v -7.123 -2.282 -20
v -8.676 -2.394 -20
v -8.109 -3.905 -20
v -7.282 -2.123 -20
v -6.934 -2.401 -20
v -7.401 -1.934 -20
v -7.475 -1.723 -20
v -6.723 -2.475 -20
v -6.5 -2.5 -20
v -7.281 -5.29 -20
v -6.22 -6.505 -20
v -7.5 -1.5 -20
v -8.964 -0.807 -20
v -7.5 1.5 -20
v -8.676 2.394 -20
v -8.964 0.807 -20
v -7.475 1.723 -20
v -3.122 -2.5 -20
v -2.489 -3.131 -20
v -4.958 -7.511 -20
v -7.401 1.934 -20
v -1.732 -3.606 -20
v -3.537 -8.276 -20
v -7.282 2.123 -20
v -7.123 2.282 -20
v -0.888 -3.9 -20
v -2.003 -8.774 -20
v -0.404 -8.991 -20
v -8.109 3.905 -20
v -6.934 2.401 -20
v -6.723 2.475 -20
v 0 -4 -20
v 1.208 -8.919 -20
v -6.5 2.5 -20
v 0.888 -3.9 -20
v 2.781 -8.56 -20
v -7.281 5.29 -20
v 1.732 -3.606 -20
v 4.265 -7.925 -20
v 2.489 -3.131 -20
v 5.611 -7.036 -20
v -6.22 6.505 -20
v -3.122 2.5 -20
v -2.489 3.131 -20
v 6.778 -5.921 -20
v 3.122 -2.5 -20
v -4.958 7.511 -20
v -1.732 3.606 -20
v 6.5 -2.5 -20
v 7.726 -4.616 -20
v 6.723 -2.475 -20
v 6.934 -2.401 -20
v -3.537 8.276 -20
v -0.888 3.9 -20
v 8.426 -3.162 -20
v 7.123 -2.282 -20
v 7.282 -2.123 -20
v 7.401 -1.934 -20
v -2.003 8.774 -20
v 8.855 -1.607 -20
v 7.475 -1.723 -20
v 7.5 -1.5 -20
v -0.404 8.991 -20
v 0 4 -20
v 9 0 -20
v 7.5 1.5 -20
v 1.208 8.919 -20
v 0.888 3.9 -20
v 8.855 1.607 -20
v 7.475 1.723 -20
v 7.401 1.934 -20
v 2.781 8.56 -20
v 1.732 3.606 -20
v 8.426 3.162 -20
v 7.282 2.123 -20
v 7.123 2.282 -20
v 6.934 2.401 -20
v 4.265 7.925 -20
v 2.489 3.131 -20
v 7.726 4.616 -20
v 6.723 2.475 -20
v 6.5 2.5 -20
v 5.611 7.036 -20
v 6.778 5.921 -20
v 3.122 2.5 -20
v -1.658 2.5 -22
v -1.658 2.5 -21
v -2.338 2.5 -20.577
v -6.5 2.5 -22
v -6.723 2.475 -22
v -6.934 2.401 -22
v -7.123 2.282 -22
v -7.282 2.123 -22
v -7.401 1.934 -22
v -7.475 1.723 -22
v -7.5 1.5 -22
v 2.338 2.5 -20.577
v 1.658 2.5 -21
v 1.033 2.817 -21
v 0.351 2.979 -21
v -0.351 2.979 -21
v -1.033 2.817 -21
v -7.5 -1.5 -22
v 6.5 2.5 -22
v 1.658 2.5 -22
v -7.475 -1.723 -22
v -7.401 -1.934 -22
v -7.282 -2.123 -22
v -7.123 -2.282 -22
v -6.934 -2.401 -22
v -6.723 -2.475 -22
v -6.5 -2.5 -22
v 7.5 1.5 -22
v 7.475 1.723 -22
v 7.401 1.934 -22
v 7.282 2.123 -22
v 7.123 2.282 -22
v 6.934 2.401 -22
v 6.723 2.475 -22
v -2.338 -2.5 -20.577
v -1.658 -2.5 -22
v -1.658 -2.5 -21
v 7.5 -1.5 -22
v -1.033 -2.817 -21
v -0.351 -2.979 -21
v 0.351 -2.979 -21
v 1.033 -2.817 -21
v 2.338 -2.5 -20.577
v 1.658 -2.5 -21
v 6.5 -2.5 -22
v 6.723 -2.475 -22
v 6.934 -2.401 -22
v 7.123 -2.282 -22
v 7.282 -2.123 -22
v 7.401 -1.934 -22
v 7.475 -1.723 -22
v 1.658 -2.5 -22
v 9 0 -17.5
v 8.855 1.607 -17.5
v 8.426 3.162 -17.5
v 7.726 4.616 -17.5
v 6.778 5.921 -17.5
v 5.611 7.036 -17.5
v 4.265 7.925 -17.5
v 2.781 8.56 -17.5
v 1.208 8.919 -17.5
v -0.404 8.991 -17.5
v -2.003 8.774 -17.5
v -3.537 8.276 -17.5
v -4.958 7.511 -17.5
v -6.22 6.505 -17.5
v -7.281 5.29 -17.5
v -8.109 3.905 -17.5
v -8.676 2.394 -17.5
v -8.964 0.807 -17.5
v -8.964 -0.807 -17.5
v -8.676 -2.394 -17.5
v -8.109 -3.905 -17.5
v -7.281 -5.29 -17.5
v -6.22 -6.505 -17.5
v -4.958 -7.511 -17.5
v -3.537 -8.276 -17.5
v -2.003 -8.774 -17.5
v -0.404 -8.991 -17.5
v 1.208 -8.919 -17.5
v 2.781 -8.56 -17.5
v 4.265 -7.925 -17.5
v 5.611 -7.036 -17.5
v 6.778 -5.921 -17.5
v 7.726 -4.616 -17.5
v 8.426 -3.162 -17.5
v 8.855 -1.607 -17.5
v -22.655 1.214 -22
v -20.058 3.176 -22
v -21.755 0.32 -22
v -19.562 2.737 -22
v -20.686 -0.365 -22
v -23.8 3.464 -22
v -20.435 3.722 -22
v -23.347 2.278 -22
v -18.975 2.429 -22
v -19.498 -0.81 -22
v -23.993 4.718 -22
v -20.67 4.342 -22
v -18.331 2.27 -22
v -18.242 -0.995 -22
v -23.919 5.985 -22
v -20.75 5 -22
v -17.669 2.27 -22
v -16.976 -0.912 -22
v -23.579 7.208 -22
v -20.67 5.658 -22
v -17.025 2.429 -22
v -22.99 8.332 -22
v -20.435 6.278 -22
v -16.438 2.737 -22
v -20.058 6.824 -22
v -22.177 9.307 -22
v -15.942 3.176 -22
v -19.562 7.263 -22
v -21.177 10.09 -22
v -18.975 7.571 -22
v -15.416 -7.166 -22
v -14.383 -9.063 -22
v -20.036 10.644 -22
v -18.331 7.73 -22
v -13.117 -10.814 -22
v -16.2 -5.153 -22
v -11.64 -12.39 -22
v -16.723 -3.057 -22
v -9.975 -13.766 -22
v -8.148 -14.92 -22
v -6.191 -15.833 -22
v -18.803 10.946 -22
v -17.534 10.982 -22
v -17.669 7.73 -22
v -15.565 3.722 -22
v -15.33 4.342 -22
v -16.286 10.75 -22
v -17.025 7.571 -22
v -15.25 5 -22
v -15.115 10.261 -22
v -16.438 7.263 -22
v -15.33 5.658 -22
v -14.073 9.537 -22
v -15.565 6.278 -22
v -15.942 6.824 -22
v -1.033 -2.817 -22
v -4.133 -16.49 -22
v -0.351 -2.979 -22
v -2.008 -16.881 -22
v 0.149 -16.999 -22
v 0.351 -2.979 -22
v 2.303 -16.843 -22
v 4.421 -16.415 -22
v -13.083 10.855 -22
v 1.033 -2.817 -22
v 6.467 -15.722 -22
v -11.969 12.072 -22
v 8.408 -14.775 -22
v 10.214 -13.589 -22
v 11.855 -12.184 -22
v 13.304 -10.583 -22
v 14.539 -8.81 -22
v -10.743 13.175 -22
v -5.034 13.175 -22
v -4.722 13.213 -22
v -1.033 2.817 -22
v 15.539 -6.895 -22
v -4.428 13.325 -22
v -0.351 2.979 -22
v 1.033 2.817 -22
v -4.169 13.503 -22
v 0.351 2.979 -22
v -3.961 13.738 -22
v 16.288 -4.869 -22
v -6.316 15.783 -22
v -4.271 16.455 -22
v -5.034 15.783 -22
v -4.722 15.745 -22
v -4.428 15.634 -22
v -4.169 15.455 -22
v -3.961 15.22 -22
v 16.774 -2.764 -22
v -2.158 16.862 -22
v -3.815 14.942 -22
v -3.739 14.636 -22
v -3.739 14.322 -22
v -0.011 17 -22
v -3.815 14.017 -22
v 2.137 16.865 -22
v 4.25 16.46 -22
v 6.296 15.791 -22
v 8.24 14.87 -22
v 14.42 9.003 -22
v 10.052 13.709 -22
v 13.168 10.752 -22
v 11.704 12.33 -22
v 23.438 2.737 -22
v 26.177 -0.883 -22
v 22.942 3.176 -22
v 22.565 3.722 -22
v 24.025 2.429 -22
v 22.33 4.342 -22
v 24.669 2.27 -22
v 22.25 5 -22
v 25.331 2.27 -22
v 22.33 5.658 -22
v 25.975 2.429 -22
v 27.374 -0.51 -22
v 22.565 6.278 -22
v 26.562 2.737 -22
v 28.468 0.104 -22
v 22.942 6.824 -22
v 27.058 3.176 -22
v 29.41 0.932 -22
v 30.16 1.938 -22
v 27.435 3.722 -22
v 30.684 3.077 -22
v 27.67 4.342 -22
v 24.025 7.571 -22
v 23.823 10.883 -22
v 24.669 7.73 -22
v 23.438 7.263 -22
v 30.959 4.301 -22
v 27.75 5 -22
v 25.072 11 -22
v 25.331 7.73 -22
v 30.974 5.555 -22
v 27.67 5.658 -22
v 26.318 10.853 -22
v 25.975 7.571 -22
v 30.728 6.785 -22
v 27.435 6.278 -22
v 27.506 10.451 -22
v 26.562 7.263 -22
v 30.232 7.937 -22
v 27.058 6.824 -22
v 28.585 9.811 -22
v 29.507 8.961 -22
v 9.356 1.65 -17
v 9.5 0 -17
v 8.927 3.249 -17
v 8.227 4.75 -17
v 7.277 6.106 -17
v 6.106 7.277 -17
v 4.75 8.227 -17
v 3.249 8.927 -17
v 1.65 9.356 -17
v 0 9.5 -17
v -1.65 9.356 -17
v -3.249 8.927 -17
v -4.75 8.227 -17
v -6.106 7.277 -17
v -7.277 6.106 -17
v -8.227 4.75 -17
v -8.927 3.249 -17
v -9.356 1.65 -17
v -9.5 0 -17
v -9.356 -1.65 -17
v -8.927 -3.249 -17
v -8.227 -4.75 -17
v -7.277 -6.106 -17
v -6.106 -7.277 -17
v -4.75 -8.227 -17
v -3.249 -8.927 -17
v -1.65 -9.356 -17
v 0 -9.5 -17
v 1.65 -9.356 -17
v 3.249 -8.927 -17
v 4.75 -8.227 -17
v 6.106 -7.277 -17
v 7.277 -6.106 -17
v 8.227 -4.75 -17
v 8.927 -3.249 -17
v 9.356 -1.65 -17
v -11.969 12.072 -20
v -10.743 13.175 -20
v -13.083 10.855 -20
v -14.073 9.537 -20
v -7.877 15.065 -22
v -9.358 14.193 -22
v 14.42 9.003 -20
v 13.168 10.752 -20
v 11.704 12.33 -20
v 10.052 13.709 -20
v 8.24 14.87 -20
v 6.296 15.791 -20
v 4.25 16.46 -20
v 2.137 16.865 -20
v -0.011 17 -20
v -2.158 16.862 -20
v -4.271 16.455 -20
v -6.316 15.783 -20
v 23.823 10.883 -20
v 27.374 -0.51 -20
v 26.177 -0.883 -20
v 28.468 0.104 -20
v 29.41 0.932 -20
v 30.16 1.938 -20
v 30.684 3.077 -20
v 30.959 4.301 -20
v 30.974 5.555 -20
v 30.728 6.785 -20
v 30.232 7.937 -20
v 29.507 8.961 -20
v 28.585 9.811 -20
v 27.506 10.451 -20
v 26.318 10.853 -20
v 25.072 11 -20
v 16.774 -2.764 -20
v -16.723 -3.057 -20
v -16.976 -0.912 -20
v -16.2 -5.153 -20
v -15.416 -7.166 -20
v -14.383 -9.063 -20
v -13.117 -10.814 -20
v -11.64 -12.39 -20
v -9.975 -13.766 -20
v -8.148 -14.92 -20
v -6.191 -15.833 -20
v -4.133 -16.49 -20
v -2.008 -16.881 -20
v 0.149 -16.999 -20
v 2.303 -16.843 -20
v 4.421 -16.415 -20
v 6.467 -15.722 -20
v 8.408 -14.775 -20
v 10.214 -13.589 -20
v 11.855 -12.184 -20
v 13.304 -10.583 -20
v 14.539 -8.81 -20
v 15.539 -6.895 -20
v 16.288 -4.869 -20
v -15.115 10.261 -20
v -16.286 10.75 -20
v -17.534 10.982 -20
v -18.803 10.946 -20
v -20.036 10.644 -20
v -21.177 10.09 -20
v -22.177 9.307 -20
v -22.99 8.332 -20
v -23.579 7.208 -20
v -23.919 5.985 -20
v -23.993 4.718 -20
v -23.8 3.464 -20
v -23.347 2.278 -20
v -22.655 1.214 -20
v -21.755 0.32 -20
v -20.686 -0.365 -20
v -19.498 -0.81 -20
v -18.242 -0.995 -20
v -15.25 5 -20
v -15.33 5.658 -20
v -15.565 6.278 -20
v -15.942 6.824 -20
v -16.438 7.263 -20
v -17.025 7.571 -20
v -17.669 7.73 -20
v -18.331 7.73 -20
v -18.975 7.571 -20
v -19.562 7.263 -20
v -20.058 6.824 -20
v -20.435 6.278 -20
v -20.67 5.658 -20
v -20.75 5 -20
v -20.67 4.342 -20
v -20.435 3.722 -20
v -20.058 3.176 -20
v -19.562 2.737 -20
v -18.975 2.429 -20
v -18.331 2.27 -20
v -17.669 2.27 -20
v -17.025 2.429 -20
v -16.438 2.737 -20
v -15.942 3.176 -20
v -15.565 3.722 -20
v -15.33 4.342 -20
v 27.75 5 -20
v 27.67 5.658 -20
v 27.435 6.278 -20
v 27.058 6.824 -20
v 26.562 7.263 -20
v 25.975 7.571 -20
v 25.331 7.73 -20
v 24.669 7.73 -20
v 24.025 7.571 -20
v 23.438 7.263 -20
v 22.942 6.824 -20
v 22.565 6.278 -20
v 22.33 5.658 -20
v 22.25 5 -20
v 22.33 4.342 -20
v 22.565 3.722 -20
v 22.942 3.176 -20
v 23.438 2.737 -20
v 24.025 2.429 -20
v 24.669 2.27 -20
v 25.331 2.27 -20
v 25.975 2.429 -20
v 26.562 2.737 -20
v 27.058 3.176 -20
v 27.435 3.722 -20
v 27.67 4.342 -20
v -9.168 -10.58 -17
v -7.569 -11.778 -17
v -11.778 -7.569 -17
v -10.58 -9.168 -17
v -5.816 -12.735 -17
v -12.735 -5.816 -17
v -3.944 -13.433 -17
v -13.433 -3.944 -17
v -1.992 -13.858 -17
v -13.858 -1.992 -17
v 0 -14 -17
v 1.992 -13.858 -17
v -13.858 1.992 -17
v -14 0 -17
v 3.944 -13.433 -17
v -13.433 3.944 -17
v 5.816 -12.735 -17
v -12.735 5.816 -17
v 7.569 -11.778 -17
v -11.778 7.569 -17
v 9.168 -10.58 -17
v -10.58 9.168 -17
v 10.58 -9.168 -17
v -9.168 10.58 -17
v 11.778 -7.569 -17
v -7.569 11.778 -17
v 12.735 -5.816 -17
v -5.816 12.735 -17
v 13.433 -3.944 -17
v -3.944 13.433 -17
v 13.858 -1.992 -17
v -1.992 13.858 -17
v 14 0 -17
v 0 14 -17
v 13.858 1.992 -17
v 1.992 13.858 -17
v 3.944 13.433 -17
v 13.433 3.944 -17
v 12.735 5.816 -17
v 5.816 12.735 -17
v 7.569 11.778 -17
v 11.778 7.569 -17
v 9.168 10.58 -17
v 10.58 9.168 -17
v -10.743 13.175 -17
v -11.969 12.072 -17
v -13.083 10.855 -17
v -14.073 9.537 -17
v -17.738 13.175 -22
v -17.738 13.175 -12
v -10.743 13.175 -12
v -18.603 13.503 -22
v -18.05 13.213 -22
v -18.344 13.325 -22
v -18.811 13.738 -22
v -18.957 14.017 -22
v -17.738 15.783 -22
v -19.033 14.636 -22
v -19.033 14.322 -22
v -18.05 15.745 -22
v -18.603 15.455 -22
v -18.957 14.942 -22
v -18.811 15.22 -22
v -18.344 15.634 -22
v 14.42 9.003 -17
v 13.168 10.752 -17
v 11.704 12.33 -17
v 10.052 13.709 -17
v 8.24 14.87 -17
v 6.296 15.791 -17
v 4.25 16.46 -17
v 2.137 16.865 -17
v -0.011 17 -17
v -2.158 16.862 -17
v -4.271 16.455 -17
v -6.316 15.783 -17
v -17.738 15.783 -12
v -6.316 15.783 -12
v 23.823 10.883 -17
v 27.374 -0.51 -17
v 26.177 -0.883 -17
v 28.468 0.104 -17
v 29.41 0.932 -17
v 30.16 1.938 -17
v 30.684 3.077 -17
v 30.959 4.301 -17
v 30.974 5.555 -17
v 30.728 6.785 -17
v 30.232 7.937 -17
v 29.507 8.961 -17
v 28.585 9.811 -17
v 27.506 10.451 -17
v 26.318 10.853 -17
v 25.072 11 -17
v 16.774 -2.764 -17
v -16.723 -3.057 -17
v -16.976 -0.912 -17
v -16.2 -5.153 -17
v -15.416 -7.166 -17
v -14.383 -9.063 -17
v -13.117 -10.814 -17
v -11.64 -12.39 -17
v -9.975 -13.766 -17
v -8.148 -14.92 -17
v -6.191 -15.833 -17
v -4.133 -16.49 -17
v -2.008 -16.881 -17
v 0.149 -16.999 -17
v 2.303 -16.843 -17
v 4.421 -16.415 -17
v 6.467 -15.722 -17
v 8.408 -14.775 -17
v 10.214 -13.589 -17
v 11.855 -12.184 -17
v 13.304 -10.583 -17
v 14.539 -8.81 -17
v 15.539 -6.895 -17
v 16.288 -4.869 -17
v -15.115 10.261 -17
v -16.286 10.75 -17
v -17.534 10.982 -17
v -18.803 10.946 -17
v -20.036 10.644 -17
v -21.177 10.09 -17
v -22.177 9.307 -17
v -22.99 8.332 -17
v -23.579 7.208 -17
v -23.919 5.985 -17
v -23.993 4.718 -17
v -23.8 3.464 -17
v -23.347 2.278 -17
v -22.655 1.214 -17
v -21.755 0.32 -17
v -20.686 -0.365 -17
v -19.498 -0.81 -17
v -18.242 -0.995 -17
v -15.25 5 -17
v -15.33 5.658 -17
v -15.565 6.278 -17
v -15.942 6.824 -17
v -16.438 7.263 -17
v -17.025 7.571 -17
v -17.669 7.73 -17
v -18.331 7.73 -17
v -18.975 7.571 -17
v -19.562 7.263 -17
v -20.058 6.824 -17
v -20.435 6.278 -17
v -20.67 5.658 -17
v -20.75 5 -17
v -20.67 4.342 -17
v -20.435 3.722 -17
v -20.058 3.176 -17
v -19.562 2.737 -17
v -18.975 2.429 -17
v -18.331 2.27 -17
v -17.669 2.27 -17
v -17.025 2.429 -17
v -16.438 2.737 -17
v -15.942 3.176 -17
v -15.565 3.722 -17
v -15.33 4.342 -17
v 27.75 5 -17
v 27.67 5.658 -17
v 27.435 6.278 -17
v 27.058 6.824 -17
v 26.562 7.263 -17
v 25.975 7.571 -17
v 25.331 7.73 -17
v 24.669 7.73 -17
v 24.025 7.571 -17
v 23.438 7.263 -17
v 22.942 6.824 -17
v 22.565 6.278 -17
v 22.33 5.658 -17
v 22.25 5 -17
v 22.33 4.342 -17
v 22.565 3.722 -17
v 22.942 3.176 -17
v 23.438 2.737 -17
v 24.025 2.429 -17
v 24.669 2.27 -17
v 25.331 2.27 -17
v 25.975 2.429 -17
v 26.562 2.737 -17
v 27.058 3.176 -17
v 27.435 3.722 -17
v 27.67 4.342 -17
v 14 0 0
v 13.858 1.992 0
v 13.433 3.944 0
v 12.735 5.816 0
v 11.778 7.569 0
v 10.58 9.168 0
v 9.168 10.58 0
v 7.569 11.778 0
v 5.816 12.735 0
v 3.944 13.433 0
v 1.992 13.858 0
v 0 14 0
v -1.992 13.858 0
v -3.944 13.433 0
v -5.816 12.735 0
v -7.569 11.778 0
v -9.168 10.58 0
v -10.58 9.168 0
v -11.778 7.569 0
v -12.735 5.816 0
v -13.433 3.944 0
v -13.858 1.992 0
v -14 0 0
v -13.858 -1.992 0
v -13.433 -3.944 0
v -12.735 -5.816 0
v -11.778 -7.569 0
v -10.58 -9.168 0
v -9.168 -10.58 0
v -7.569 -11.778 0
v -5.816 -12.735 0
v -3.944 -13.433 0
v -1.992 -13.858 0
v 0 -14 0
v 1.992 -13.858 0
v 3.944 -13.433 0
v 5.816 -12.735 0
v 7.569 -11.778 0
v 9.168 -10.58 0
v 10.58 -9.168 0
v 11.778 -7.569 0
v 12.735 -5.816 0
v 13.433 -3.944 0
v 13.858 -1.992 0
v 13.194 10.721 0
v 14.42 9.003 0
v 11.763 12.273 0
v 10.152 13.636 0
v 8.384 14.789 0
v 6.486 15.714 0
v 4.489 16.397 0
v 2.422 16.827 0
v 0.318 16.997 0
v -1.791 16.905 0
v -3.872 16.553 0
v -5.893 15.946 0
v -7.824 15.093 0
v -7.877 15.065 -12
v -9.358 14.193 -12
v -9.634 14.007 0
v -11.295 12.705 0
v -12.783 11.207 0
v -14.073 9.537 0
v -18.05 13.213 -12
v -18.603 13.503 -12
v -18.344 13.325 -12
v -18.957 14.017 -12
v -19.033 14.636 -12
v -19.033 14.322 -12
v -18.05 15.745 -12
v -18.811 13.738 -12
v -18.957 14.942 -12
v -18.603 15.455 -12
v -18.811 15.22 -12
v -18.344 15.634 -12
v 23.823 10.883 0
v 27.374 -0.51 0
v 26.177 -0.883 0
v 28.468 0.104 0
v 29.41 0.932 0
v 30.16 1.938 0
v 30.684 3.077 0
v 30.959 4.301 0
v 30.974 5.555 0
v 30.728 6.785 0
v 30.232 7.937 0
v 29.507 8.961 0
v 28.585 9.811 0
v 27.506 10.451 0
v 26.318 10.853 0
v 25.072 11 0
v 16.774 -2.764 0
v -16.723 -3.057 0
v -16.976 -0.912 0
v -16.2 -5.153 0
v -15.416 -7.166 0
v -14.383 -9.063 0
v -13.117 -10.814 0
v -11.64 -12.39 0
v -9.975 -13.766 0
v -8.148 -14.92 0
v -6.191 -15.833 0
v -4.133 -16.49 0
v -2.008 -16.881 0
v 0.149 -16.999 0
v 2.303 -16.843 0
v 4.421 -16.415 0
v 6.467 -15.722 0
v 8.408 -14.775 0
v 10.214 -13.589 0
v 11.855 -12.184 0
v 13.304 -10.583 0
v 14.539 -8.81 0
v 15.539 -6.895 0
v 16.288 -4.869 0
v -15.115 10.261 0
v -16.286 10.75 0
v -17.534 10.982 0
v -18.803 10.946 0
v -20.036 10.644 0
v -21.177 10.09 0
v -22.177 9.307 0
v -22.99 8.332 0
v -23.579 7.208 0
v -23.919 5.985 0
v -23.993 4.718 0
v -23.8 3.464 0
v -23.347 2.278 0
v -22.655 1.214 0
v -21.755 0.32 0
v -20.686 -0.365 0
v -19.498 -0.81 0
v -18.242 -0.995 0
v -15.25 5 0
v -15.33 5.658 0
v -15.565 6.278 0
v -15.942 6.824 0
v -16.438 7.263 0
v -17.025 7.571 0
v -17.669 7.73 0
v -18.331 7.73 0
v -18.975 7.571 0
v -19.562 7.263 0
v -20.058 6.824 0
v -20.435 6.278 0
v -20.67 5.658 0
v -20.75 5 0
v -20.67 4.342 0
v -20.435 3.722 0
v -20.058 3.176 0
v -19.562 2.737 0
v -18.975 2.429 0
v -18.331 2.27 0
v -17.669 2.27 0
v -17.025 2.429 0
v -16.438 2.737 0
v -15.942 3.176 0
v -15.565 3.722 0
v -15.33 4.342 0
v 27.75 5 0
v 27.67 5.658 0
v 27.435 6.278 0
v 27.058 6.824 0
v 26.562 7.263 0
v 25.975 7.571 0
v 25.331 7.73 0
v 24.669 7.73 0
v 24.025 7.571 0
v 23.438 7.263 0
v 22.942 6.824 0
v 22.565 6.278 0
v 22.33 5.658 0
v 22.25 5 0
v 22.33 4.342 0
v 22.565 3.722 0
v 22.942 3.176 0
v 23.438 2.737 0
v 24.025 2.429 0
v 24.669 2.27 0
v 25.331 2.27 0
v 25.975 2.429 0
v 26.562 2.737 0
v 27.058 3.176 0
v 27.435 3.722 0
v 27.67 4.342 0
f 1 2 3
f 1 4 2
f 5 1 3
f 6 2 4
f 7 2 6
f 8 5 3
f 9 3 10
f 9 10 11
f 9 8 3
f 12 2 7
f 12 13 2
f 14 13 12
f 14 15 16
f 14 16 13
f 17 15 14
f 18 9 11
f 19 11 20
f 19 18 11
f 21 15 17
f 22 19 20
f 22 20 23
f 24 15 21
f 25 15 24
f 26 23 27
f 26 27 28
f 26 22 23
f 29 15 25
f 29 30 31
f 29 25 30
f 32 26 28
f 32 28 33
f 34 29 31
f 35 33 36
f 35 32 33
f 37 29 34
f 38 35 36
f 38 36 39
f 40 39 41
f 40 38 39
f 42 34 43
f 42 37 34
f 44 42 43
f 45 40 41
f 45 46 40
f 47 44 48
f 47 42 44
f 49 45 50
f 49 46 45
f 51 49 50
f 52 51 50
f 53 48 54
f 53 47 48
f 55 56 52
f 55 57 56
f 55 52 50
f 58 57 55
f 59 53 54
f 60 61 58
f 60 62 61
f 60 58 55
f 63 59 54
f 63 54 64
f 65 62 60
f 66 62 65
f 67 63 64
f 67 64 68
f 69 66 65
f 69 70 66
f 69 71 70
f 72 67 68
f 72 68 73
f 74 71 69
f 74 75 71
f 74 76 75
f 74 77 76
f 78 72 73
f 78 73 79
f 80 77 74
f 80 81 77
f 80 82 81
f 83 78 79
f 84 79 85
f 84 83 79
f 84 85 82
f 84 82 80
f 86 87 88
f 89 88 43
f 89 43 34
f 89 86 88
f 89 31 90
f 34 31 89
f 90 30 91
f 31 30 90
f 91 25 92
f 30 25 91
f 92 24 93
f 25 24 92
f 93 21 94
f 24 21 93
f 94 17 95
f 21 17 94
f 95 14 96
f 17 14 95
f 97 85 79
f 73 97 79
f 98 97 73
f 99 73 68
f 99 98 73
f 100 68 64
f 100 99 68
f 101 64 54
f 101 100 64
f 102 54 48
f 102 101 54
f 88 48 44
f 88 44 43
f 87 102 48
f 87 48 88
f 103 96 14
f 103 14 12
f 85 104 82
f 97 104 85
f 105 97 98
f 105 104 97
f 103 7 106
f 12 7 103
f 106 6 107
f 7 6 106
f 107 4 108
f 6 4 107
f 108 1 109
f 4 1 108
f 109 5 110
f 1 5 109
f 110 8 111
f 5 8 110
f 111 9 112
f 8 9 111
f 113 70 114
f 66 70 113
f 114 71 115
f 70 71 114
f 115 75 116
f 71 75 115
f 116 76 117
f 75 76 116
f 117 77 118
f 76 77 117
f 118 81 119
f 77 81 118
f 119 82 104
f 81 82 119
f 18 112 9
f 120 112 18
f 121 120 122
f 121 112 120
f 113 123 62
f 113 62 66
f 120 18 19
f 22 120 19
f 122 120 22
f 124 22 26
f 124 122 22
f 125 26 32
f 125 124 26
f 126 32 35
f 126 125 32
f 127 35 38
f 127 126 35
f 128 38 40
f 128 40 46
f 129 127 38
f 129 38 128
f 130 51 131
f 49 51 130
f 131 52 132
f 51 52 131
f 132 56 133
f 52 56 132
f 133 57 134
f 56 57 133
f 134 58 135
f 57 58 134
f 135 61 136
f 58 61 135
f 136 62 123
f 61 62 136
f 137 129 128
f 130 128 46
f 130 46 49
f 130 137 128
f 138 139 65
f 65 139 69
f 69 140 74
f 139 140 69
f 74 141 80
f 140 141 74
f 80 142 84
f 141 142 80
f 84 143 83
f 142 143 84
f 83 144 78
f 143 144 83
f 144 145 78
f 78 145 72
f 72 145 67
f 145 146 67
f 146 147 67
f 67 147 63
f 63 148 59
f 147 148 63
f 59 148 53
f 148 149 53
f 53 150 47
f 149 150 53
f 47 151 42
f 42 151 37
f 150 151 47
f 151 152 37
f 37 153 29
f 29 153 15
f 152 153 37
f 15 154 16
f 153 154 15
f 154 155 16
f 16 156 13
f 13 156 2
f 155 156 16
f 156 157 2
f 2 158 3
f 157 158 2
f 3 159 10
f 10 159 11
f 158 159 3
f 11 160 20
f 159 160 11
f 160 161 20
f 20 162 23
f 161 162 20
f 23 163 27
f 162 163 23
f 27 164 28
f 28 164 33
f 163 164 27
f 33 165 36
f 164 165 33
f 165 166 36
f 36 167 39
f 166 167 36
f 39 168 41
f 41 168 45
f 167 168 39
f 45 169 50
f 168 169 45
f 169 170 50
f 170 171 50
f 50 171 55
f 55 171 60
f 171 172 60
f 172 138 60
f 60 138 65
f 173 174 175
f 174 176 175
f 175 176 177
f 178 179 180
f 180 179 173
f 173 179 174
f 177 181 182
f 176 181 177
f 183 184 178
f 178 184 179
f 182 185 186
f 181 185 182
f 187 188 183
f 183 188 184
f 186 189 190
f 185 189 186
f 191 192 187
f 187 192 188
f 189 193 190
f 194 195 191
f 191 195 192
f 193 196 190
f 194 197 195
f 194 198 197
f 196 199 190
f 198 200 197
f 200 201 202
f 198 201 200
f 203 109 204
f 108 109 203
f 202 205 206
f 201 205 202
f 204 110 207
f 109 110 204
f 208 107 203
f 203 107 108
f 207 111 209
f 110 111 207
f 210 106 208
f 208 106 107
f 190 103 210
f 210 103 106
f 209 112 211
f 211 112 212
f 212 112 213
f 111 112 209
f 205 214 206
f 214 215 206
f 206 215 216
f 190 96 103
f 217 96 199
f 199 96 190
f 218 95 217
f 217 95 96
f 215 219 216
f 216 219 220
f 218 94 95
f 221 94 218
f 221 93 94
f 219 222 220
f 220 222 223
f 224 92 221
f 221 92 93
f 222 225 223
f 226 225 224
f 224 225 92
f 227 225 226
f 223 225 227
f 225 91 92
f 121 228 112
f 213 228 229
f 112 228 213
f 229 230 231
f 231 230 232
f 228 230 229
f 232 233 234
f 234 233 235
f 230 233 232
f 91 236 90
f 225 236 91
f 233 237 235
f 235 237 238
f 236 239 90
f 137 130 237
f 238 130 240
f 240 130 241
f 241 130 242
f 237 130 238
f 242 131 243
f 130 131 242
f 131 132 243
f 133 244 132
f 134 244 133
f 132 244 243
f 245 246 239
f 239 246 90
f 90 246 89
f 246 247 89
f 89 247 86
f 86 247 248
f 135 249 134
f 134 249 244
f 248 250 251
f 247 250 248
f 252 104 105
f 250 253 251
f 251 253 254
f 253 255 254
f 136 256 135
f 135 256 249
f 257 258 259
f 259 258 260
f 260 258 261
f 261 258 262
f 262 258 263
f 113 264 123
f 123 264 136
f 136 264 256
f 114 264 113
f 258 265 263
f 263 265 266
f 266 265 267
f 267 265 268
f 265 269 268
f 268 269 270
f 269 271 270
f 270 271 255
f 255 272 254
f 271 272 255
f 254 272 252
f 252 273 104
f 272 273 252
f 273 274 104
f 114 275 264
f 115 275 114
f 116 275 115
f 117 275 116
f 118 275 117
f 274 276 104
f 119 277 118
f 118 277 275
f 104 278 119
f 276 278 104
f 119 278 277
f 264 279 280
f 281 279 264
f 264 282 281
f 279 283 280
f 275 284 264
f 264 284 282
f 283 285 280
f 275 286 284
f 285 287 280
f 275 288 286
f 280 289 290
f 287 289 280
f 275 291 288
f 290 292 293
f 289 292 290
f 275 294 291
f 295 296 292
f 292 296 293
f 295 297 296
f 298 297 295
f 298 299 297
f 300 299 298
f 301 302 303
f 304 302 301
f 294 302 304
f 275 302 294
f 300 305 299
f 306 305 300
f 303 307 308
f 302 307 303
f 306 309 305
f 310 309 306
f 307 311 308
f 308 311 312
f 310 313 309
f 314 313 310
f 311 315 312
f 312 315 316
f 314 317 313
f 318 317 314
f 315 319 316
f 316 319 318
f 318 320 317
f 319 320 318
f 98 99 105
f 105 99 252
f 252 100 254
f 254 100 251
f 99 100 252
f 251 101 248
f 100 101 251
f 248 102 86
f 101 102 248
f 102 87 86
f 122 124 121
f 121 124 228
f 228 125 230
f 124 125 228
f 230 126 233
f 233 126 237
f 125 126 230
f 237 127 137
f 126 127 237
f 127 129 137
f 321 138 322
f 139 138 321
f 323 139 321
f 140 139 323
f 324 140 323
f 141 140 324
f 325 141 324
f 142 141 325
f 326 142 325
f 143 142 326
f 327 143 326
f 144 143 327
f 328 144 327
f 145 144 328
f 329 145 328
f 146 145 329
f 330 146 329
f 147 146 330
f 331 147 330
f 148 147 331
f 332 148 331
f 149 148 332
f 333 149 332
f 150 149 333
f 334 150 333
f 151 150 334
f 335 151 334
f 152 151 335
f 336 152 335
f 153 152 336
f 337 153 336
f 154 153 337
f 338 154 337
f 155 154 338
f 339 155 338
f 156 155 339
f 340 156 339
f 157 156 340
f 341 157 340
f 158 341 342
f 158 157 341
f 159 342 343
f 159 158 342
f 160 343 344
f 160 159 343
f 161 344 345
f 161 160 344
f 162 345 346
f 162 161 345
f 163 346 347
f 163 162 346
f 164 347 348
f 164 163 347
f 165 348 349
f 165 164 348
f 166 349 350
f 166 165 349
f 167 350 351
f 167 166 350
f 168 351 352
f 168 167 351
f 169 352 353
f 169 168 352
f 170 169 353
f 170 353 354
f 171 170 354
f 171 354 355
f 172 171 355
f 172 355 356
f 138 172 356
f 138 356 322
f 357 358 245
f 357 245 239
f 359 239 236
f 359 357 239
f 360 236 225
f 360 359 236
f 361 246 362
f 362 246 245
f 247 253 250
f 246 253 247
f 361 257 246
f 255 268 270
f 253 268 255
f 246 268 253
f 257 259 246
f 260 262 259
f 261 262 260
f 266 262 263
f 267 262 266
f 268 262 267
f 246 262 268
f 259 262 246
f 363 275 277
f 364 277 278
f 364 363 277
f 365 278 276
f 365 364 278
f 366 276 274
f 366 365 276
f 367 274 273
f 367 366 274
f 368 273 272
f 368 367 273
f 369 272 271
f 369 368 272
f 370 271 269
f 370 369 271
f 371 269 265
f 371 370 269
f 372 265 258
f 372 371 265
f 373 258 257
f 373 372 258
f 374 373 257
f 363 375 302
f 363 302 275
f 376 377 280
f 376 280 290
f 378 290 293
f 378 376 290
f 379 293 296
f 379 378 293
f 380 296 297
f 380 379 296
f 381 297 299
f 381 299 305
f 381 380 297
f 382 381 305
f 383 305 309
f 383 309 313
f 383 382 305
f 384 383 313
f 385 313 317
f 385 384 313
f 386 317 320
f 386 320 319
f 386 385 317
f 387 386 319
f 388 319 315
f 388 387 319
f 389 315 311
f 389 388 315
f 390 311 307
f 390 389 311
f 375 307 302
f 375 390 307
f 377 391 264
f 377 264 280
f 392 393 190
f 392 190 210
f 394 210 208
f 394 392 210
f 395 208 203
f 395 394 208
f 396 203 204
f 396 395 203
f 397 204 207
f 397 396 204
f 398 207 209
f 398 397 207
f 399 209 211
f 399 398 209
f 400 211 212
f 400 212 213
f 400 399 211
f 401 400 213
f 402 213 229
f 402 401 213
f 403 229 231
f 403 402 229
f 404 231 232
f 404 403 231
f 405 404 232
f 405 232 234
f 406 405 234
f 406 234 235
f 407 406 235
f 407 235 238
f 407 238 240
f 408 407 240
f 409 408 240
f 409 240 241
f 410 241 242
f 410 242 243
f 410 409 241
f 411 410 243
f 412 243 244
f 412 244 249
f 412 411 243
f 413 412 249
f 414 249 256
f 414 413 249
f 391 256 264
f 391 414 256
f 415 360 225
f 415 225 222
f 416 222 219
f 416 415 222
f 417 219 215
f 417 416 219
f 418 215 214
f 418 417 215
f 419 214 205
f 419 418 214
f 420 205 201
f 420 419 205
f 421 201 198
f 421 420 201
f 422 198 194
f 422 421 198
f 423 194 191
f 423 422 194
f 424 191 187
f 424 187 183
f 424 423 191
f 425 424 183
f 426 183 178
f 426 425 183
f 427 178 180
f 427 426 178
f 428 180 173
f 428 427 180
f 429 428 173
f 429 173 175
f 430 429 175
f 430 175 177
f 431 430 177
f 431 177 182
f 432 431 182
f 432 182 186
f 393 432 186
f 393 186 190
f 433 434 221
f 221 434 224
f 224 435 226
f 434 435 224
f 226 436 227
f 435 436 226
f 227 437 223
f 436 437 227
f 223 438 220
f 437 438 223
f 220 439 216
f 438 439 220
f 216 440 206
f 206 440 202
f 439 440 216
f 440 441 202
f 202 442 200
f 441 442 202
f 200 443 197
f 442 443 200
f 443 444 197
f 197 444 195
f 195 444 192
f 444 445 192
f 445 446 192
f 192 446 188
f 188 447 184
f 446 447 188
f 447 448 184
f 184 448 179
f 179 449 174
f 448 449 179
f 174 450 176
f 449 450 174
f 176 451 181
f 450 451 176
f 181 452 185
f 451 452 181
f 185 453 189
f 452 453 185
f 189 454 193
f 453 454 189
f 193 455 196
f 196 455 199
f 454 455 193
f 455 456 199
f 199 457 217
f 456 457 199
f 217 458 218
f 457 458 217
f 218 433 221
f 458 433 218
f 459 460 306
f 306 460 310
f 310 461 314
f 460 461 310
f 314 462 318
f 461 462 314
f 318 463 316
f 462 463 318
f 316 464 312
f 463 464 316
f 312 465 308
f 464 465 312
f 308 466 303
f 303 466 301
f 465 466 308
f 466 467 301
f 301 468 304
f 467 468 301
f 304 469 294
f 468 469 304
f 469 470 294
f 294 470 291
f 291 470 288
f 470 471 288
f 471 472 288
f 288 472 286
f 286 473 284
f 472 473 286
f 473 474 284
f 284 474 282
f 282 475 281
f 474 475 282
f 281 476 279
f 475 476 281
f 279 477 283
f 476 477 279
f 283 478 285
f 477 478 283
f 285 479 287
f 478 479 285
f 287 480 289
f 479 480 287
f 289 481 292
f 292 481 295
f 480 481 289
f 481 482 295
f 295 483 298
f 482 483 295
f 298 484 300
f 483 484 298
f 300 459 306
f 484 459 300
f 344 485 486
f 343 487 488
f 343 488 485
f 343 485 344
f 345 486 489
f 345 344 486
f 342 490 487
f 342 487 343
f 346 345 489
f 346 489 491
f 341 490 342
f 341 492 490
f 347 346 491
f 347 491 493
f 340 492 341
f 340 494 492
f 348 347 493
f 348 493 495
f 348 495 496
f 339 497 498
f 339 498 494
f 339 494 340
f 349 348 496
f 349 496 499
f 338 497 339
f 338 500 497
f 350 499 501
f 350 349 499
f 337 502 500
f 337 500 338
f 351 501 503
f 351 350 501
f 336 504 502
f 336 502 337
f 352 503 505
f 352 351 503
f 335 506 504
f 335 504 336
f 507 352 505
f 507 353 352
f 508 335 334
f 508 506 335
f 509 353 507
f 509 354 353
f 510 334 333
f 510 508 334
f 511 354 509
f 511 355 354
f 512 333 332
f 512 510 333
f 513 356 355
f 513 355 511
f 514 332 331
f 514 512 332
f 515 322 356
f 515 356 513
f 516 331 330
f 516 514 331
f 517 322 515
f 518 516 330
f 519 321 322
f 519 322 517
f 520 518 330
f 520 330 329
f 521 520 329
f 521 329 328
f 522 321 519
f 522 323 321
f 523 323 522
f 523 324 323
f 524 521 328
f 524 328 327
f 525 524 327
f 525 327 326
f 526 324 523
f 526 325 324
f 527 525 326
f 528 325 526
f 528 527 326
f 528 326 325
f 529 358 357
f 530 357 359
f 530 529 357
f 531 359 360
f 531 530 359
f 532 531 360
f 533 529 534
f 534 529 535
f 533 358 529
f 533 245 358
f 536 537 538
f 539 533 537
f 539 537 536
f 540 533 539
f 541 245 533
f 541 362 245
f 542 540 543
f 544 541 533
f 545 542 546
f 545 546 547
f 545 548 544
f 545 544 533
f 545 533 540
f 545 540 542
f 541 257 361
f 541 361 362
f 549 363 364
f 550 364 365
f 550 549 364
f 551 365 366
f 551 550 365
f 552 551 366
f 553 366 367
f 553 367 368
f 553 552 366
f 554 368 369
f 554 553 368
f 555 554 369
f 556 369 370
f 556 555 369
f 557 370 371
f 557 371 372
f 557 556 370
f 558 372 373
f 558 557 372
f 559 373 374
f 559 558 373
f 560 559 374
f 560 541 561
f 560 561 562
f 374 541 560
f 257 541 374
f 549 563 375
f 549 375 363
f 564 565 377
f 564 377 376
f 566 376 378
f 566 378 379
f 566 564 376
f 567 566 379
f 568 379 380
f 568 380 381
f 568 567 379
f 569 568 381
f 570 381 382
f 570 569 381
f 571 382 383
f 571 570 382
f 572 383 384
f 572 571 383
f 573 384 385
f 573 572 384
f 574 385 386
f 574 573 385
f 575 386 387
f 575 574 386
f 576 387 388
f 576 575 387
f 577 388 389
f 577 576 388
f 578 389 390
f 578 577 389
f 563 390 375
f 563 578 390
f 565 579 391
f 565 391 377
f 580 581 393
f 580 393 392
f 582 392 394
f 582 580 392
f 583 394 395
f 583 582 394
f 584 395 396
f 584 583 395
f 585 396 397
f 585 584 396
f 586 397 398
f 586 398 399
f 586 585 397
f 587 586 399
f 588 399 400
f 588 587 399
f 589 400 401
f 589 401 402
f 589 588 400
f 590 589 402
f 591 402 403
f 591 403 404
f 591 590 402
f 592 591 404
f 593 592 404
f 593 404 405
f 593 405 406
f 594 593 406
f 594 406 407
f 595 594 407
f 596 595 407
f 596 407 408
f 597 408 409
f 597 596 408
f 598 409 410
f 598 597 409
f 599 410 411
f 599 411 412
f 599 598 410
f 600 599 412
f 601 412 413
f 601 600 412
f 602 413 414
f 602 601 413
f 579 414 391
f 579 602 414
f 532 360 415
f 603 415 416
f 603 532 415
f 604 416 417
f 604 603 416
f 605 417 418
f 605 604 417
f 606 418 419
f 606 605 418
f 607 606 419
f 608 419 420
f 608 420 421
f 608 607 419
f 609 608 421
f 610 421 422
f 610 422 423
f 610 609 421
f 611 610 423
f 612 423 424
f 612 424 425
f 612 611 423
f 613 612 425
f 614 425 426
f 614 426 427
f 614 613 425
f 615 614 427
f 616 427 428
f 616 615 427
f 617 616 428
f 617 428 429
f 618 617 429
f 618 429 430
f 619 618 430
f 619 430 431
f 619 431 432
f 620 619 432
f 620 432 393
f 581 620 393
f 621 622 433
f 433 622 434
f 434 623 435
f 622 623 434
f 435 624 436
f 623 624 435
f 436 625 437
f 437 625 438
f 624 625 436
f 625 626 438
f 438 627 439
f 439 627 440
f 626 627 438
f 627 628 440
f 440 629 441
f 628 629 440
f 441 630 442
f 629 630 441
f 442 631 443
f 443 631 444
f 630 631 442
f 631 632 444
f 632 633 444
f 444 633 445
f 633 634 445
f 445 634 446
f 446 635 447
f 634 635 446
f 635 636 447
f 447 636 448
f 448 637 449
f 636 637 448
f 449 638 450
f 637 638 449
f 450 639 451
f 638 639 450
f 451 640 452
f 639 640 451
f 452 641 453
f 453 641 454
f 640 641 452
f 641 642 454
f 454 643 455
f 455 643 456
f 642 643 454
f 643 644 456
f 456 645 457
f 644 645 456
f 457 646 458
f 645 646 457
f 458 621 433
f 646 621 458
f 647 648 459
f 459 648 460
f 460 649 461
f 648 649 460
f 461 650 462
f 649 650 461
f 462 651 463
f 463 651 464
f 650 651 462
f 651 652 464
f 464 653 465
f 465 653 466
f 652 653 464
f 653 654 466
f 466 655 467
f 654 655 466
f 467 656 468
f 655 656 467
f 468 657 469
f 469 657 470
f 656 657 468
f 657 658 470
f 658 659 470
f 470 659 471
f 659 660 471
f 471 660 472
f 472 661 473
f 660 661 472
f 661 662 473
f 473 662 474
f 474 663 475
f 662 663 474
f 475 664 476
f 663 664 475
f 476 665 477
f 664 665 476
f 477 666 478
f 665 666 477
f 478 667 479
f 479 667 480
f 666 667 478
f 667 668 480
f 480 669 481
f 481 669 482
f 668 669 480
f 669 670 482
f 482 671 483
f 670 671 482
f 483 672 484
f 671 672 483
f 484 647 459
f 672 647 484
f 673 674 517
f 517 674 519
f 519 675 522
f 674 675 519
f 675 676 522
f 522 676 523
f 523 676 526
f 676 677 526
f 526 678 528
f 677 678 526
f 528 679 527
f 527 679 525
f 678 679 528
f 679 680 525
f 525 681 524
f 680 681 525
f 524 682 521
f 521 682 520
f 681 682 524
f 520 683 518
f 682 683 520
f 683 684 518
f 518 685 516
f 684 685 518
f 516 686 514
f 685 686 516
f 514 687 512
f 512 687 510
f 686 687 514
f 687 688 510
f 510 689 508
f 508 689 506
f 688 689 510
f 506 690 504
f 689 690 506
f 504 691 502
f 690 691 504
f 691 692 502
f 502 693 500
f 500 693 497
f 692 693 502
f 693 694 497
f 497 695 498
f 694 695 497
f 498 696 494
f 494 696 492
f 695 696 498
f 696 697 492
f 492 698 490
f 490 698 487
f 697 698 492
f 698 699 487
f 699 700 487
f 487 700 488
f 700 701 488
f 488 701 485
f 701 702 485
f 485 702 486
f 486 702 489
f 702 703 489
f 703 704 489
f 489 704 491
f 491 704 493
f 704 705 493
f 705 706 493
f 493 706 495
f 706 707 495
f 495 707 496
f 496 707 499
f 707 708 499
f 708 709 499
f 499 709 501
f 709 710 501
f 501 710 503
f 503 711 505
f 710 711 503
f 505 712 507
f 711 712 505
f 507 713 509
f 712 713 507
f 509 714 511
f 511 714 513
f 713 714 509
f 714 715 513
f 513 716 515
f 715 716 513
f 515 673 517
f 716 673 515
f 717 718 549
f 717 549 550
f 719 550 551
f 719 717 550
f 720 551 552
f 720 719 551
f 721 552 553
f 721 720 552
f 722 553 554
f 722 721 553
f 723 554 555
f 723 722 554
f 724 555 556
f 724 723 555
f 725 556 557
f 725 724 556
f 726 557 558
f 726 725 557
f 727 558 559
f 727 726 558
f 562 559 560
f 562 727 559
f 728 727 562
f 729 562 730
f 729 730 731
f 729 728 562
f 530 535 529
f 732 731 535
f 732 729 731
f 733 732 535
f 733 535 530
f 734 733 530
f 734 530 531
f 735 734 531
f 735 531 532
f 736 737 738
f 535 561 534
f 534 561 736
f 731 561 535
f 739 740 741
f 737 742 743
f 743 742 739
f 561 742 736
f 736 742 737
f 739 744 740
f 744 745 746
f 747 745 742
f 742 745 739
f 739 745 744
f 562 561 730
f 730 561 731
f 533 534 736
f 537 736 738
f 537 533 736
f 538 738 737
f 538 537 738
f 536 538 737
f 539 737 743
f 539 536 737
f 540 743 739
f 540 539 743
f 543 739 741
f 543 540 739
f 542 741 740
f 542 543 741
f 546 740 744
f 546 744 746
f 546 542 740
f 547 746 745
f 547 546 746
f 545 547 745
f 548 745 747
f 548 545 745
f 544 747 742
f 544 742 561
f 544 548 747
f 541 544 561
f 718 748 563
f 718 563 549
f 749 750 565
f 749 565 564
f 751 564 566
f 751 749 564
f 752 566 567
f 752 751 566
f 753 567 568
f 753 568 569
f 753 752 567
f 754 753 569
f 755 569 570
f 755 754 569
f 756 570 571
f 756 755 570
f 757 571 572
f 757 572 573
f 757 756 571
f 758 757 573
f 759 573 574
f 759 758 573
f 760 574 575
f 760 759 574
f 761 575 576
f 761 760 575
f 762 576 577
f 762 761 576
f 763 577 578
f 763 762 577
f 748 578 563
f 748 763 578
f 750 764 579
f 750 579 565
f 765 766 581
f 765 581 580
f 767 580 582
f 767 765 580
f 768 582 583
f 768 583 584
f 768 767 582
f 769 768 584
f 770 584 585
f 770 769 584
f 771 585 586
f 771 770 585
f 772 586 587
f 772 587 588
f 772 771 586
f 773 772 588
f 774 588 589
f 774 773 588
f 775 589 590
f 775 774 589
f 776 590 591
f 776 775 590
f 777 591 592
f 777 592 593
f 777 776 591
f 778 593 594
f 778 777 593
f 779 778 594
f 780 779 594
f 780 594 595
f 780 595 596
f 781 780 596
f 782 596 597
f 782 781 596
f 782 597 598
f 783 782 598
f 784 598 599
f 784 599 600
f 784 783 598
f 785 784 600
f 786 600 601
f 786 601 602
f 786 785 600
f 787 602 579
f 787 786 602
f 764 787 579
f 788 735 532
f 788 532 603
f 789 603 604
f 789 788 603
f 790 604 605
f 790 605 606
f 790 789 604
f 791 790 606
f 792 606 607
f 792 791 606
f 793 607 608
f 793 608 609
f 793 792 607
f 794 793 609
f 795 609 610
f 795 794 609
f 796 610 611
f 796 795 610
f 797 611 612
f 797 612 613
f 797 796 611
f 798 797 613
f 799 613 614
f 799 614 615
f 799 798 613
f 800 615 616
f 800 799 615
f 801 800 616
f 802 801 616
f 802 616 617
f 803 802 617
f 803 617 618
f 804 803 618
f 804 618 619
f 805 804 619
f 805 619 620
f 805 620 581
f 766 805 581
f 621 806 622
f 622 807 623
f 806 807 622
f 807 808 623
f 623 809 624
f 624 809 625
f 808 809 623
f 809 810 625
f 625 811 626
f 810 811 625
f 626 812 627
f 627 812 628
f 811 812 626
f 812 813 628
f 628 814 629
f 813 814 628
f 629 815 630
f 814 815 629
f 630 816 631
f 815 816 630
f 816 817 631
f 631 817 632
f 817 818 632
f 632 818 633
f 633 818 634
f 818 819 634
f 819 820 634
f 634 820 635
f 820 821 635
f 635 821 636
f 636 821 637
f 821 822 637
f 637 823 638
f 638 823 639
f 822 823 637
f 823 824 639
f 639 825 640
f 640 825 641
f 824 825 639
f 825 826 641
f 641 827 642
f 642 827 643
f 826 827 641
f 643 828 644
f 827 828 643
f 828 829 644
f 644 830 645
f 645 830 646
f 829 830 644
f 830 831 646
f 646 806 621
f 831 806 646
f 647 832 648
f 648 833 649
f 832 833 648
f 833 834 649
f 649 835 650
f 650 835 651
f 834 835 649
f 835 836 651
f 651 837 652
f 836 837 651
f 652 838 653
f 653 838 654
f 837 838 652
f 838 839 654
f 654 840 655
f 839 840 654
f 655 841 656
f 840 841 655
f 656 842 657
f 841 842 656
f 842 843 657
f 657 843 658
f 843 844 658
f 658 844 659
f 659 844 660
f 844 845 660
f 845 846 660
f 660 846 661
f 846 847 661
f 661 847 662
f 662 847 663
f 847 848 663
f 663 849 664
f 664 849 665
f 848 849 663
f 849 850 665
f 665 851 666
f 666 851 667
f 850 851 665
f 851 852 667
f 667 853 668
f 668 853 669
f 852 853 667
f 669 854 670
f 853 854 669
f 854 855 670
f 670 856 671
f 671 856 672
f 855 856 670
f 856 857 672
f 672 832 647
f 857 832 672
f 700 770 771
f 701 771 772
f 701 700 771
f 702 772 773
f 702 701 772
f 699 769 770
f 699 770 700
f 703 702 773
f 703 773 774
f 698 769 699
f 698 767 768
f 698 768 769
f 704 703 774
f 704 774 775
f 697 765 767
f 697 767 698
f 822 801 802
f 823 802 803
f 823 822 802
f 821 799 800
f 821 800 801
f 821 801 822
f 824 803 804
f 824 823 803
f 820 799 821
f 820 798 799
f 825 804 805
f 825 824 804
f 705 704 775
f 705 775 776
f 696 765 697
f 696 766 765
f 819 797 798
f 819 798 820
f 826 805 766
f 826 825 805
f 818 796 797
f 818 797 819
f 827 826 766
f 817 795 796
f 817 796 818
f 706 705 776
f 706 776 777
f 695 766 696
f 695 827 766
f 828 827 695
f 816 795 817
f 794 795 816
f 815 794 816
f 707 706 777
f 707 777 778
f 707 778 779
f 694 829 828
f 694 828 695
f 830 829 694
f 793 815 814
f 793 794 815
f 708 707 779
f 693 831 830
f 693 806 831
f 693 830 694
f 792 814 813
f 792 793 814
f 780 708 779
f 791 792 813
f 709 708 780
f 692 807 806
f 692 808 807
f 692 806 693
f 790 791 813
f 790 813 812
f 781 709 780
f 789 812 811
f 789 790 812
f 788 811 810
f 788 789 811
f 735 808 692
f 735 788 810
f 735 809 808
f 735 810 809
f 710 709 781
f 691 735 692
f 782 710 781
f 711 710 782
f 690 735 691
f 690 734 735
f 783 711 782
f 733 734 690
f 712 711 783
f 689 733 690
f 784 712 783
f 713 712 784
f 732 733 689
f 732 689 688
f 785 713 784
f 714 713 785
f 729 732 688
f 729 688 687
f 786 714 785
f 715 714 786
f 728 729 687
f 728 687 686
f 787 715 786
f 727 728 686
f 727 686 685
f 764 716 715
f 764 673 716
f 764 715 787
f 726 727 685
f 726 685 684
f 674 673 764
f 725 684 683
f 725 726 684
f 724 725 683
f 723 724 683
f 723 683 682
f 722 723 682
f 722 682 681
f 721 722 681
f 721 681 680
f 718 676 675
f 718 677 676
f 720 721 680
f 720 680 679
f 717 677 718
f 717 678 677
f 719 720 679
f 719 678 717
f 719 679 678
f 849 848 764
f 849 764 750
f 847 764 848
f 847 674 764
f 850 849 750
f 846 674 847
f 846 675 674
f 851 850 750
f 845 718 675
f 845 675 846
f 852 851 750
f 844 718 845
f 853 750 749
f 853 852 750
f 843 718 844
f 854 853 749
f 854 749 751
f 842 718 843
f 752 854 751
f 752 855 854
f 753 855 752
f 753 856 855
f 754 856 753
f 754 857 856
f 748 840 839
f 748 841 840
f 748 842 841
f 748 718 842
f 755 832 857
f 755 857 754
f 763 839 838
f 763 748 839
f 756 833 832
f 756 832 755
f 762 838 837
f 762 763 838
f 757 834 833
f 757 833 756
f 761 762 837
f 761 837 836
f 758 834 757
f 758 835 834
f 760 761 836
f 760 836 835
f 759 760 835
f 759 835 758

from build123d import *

# Parameters (mm, degrees)
SKETCH_R        = 14
SKETCH_R_2      = 2.75
PAD_DEPTH       = 17
SKETCH001_R     = 9
SKETCH001_R_2   = 2.75
PAD001_DEPTH    = 3
SKETCH002_R     = 3
SKETCH002_R_2   = 2.75
PAD002_DEPTH    = 2
CHAMFER_SIZE    = 0.5
CHAMFER001_SIZE = 1
SKETCH003_W     = 15
SKETCH003_H     = 5
POCKET_DEPTH    = 22.001
FILLET_R        = 1
PAD003_DEPTH    = 10


with BuildPart() as part:
    # Sketch → Pad (new body)
    with BuildSketch(Plane.XY):
        with BuildLine():
            ThreePointArc((-14.073185, 9.536533), (-23.781107, 6.605863), (-16.975525, -0.911891))
            ThreePointArc((-16.975525, -0.911891), (-0.931565, -16.974457), (16.773787, -2.764066))
            Line((16.773787, -2.764066), (26.176697, -0.883484))
            ThreePointArc((26.176697, -0.883484), (30.883484, 6.176697), (23.823303, 10.883484))
            Line((23.823303, 10.883484), (14.420394, 9.002902))
            ThreePointArc((14.420394, 9.002902), (0.318322, 16.997019), (-14.073185, 9.536533))
        make_face()
        Circle(SKETCH_R, mode=Mode.SUBTRACT)
        with Locations((25, 5)):
            Circle(SKETCH_R_2, mode=Mode.SUBTRACT)
        with Locations((-18, 5)):
            Circle(SKETCH_R_2, mode=Mode.SUBTRACT)
    extrude(amount=-PAD_DEPTH)

    # Sketch001 → Pad001 (join)
    with BuildSketch(Plane.XY.offset(-17)):
        with BuildLine():
            ThreePointArc((-14.073185, 9.536533), (-23.781107, 6.605863), (-16.975525, -0.911891))
            ThreePointArc((-16.975525, -0.911891), (-0.931565, -16.974457), (16.773787, -2.764066))
            Line((16.773787, -2.764066), (26.176697, -0.883484))
            ThreePointArc((26.176697, -0.883484), (30.883484, 6.176697), (23.823303, 10.883484))
            Line((23.823303, 10.883484), (14.420394, 9.002902))
            ThreePointArc((14.420394, 9.002902), (0.318322, 16.997019), (-14.073185, 9.536533))
        make_face()
        Circle(SKETCH001_R, mode=Mode.SUBTRACT)
        with Locations((25, 5)):
            Circle(SKETCH001_R_2, mode=Mode.SUBTRACT)
        with Locations((-18, 5)):
            Circle(SKETCH001_R_2, mode=Mode.SUBTRACT)
    extrude(amount=-PAD001_DEPTH)

    # Sketch002 → Pad002 (join)
    with BuildSketch(Plane.XY.offset(-20)):
        with BuildLine():
            ThreePointArc((-14.073185, 9.536533), (-23.781107, 6.605863), (-16.975525, -0.911891))
            ThreePointArc((-16.975525, -0.911891), (-0.931565, -16.974457), (16.773787, -2.764066))
            Line((16.773787, -2.764066), (26.176697, -0.883484))
            ThreePointArc((26.176697, -0.883484), (30.883484, 6.176697), (23.823303, 10.883484))
            Line((23.823303, 10.883484), (14.420394, 9.002902))
            ThreePointArc((14.420394, 9.002902), (0.318322, 16.997019), (-14.073185, 9.536533))
        make_face()
        Circle(SKETCH002_R, mode=Mode.SUBTRACT)
        with Locations((25, 5)):
            Circle(SKETCH002_R_2, mode=Mode.SUBTRACT)
        with Locations((-18, 5)):
            Circle(SKETCH002_R_2, mode=Mode.SUBTRACT)
    extrude(amount=-PAD002_DEPTH)

    # Chamfer
    chamfer_edges = [part.edges().sort_by_distance(p)[0] for p in [
        (-9, 0, -17),
    ]]
    chamfer(chamfer_edges, length=CHAMFER_SIZE)

    # Chamfer001
    chamfer001_edges = [part.edges().sort_by_distance(p)[0] for p in [
        (-3, 0, -20),
    ]]
    chamfer(chamfer001_edges, length=CHAMFER001_SIZE)

    # Sketch003 (on Face6 of Chamfer001) → Pocket (cut, through all)
    with BuildSketch(Plane(origin=(0, 0, -22), x_dir=(1, 0, 0), z_dir=(0, 0, -1))):
        Rectangle(SKETCH003_W, SKETCH003_H)
    extrude(amount=-POCKET_DEPTH, mode=Mode.SUBTRACT)

    # Fillet
    fillet_edges = [part.edges().sort_by_distance(p)[0] for p in [
        (-7.5, -2.5, -21),
        (7.5, -2.5, -21),
        (7.5, 2.5, -21),
        (-7.5, 2.5, -21),
    ]]
    fillet(fillet_edges, radius=FILLET_R)

    # Sketch004 (on Face15 of Fillet) → Pad003 (join)
    with BuildSketch(Plane(origin=(0, 0, -22), x_dir=(1, 0, 0), z_dir=(0, 0, -1))):
        with BuildLine():
            ThreePointArc((-17.738007, -13.175152), (-19.042066, -14.479211), (-17.738007, -15.78327))
            Line((-17.738007, -15.78327), (-5.033958, -15.78327))
            ThreePointArc((-5.033958, -15.78327), (-3.729899, -14.479211), (-5.033958, -13.175152))
            Line((-17.738007, -13.175152), (-5.033958, -13.175152))
        make_face()
    extrude(amount=-PAD003_DEPTH)


solid = part.part
